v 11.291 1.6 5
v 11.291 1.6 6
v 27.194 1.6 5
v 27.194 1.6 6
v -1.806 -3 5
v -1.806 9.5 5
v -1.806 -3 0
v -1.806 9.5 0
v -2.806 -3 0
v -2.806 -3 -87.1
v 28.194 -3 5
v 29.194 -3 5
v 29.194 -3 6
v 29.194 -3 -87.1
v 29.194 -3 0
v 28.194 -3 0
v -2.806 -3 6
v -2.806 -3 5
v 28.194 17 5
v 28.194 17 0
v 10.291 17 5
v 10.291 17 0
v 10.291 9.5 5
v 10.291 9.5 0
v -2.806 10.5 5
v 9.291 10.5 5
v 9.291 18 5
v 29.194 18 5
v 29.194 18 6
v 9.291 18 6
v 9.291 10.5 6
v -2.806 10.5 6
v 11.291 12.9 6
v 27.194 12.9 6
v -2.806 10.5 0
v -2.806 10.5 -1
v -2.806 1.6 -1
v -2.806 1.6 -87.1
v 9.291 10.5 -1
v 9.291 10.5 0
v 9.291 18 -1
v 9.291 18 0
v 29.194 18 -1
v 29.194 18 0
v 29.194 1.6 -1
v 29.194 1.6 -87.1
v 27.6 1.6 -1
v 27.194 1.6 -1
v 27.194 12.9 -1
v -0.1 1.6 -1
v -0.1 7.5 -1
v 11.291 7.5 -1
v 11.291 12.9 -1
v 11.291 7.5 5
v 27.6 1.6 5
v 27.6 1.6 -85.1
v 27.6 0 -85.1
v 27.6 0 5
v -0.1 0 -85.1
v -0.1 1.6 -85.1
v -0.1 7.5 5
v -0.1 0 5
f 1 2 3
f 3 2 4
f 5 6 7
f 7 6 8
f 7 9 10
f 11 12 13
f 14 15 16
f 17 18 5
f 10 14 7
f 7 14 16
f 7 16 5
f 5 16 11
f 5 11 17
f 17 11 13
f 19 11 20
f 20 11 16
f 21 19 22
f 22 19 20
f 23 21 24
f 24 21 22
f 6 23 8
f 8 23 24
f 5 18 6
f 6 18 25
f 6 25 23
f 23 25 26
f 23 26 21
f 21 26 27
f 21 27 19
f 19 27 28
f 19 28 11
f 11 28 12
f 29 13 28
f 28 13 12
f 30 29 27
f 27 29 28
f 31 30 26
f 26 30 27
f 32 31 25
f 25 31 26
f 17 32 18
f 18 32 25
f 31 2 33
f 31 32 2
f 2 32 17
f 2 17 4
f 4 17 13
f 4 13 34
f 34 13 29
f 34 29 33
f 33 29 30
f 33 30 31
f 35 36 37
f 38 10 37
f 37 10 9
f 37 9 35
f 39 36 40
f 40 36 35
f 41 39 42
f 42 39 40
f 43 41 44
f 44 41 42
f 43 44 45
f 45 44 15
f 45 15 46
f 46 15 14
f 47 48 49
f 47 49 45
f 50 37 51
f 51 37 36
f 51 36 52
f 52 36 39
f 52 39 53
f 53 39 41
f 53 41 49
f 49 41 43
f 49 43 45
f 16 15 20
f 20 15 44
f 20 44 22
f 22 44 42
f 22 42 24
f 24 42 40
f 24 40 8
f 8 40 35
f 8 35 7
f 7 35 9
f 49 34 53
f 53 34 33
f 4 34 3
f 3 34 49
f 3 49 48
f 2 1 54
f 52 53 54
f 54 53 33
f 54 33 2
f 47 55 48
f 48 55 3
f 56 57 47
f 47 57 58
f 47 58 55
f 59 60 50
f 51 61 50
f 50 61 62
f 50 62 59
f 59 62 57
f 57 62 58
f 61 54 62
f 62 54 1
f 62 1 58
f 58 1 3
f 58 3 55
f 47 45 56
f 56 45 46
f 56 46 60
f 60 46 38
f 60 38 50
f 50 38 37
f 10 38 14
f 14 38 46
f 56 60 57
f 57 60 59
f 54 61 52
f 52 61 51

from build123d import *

# Parameters (mm, degrees)
SKETCH_2_W          = 15.902311404
SKETCH_2_H          = 11.3
EXTRUDE_1_DEPTH     = 5
EXTRUDE_2_DEPTH     = 1
EXTRUDE_4_DEPTH     = 1
SKETCH_6_W          = 15.902311404
SKETCH_6_H          = 11.3
CUT_EXTRUDE_1_DEPTH = 36.003849734
SKETCH_7_W          = 27.70005588
SKETCH_7_H          = 1.6
CUT_EXTRUDE_2_DEPTH = 6
EXTRUDE_5_DEPTH     = 84.1
SKETCH_9_W          = 32
SKETCH_9_H          = 4.6
EXTRUDE_6_DEPTH     = 2
SKETCH_10_W         = 11.391343663
SKETCH_10_H         = 5.9
CUT_EXTRUDE_3_DEPTH = 6


with BuildPart() as part:
    # 草图2 → 凸台-拉伸1 (new body)
    with BuildSketch(Plane.XY):
        Polygon((-1.806344933, -3), (28.193655067, -3), (28.193655067, 17), (10.291343663, 17), (10.291343663, 9.5), (-1.806344933, 9.5), align=None)
        with Locations((19.242499365, 7.25)):
            Rectangle(SKETCH_2_W, SKETCH_2_H, mode=Mode.SUBTRACT)
    extrude(amount=EXTRUDE_1_DEPTH)

    # 草图3 → 凸台-拉伸2 (add)
    with BuildSketch(Plane.XY.offset(5)):
        Polygon((-2.806344933, -3), (29.193655067, -3), (29.193655067, 18), (9.291343663, 18), (9.291343663, 10.5), (-2.806344933, 10.5), align=None)
    extrude(amount=EXTRUDE_2_DEPTH)

    # 草图5 → 凸台-拉伸4 (add)
    with BuildSketch(Plane(origin=(0, 0, 0), x_dir=(-1, 0, 0), z_dir=(0, 0, -1))):
        Polygon((-29.193655067, 18), (-29.193655067, -3), (-28.193655067, -3), (1.806344933, -3), (2.806344933, -3), (2.806344933, 10.5), (-9.291343663, 10.5), (-9.291343663, 18), align=None)
    extrude(amount=EXTRUDE_4_DEPTH)

    # 草图6 → 切除-拉伸1 (cut, through all)
    with BuildSketch(Plane.XY.offset(6)):
        with Locations((19.242499365, 7.25)):
            Rectangle(SKETCH_6_W, SKETCH_6_H)
    extrude(amount=-CUT_EXTRUDE_1_DEPTH, mode=Mode.SUBTRACT)

    # 草图7 → 切除-拉伸2 (cut)
    with BuildSketch(Plane(origin=(0, 0, -1), x_dir=(-1, 0, 0), z_dir=(0, 0, -1))):
        with Locations((-13.75002794, 0.8)):
            Rectangle(SKETCH_7_W, SKETCH_7_H)
    extrude(amount=-CUT_EXTRUDE_2_DEPTH, mode=Mode.SUBTRACT)

    # 草图8 → 凸台-拉伸5 (add)
    with BuildSketch(Plane(origin=(0, 0, -1), x_dir=(-1, 0, 0), z_dir=(0, 0, -1))):
        Polygon((-27.60005588, 1.6), (-29.193655067, 1.6), (-29.193655067, -3), (2.806344933, -3), (2.806344933, 1.6), (0.1, 1.6), (0.1, 0), (-27.60005588, 0), align=None)
    extrude(amount=EXTRUDE_5_DEPTH)

    # 草图9 → 凸台-拉伸6 (add)
    with BuildSketch(Plane(origin=(0, 0, -85.1), x_dir=(-1, 0, 0), z_dir=(0, 0, -1))):
        with Locations((-13.193655067, -0.7)):
            Rectangle(SKETCH_9_W, SKETCH_9_H)
    extrude(amount=EXTRUDE_6_DEPTH)

    # 草图10 → 切除-拉伸3 (cut)
    with BuildSketch(Plane(origin=(0, 0, -1), x_dir=(-1, 0, 0), z_dir=(0, 0, -1))):
        with Locations((-5.595671832, 4.55)):
            Rectangle(SKETCH_10_W, SKETCH_10_H)
    extrude(amount=-CUT_EXTRUDE_3_DEPTH, mode=Mode.SUBTRACT)


solid = part.part
